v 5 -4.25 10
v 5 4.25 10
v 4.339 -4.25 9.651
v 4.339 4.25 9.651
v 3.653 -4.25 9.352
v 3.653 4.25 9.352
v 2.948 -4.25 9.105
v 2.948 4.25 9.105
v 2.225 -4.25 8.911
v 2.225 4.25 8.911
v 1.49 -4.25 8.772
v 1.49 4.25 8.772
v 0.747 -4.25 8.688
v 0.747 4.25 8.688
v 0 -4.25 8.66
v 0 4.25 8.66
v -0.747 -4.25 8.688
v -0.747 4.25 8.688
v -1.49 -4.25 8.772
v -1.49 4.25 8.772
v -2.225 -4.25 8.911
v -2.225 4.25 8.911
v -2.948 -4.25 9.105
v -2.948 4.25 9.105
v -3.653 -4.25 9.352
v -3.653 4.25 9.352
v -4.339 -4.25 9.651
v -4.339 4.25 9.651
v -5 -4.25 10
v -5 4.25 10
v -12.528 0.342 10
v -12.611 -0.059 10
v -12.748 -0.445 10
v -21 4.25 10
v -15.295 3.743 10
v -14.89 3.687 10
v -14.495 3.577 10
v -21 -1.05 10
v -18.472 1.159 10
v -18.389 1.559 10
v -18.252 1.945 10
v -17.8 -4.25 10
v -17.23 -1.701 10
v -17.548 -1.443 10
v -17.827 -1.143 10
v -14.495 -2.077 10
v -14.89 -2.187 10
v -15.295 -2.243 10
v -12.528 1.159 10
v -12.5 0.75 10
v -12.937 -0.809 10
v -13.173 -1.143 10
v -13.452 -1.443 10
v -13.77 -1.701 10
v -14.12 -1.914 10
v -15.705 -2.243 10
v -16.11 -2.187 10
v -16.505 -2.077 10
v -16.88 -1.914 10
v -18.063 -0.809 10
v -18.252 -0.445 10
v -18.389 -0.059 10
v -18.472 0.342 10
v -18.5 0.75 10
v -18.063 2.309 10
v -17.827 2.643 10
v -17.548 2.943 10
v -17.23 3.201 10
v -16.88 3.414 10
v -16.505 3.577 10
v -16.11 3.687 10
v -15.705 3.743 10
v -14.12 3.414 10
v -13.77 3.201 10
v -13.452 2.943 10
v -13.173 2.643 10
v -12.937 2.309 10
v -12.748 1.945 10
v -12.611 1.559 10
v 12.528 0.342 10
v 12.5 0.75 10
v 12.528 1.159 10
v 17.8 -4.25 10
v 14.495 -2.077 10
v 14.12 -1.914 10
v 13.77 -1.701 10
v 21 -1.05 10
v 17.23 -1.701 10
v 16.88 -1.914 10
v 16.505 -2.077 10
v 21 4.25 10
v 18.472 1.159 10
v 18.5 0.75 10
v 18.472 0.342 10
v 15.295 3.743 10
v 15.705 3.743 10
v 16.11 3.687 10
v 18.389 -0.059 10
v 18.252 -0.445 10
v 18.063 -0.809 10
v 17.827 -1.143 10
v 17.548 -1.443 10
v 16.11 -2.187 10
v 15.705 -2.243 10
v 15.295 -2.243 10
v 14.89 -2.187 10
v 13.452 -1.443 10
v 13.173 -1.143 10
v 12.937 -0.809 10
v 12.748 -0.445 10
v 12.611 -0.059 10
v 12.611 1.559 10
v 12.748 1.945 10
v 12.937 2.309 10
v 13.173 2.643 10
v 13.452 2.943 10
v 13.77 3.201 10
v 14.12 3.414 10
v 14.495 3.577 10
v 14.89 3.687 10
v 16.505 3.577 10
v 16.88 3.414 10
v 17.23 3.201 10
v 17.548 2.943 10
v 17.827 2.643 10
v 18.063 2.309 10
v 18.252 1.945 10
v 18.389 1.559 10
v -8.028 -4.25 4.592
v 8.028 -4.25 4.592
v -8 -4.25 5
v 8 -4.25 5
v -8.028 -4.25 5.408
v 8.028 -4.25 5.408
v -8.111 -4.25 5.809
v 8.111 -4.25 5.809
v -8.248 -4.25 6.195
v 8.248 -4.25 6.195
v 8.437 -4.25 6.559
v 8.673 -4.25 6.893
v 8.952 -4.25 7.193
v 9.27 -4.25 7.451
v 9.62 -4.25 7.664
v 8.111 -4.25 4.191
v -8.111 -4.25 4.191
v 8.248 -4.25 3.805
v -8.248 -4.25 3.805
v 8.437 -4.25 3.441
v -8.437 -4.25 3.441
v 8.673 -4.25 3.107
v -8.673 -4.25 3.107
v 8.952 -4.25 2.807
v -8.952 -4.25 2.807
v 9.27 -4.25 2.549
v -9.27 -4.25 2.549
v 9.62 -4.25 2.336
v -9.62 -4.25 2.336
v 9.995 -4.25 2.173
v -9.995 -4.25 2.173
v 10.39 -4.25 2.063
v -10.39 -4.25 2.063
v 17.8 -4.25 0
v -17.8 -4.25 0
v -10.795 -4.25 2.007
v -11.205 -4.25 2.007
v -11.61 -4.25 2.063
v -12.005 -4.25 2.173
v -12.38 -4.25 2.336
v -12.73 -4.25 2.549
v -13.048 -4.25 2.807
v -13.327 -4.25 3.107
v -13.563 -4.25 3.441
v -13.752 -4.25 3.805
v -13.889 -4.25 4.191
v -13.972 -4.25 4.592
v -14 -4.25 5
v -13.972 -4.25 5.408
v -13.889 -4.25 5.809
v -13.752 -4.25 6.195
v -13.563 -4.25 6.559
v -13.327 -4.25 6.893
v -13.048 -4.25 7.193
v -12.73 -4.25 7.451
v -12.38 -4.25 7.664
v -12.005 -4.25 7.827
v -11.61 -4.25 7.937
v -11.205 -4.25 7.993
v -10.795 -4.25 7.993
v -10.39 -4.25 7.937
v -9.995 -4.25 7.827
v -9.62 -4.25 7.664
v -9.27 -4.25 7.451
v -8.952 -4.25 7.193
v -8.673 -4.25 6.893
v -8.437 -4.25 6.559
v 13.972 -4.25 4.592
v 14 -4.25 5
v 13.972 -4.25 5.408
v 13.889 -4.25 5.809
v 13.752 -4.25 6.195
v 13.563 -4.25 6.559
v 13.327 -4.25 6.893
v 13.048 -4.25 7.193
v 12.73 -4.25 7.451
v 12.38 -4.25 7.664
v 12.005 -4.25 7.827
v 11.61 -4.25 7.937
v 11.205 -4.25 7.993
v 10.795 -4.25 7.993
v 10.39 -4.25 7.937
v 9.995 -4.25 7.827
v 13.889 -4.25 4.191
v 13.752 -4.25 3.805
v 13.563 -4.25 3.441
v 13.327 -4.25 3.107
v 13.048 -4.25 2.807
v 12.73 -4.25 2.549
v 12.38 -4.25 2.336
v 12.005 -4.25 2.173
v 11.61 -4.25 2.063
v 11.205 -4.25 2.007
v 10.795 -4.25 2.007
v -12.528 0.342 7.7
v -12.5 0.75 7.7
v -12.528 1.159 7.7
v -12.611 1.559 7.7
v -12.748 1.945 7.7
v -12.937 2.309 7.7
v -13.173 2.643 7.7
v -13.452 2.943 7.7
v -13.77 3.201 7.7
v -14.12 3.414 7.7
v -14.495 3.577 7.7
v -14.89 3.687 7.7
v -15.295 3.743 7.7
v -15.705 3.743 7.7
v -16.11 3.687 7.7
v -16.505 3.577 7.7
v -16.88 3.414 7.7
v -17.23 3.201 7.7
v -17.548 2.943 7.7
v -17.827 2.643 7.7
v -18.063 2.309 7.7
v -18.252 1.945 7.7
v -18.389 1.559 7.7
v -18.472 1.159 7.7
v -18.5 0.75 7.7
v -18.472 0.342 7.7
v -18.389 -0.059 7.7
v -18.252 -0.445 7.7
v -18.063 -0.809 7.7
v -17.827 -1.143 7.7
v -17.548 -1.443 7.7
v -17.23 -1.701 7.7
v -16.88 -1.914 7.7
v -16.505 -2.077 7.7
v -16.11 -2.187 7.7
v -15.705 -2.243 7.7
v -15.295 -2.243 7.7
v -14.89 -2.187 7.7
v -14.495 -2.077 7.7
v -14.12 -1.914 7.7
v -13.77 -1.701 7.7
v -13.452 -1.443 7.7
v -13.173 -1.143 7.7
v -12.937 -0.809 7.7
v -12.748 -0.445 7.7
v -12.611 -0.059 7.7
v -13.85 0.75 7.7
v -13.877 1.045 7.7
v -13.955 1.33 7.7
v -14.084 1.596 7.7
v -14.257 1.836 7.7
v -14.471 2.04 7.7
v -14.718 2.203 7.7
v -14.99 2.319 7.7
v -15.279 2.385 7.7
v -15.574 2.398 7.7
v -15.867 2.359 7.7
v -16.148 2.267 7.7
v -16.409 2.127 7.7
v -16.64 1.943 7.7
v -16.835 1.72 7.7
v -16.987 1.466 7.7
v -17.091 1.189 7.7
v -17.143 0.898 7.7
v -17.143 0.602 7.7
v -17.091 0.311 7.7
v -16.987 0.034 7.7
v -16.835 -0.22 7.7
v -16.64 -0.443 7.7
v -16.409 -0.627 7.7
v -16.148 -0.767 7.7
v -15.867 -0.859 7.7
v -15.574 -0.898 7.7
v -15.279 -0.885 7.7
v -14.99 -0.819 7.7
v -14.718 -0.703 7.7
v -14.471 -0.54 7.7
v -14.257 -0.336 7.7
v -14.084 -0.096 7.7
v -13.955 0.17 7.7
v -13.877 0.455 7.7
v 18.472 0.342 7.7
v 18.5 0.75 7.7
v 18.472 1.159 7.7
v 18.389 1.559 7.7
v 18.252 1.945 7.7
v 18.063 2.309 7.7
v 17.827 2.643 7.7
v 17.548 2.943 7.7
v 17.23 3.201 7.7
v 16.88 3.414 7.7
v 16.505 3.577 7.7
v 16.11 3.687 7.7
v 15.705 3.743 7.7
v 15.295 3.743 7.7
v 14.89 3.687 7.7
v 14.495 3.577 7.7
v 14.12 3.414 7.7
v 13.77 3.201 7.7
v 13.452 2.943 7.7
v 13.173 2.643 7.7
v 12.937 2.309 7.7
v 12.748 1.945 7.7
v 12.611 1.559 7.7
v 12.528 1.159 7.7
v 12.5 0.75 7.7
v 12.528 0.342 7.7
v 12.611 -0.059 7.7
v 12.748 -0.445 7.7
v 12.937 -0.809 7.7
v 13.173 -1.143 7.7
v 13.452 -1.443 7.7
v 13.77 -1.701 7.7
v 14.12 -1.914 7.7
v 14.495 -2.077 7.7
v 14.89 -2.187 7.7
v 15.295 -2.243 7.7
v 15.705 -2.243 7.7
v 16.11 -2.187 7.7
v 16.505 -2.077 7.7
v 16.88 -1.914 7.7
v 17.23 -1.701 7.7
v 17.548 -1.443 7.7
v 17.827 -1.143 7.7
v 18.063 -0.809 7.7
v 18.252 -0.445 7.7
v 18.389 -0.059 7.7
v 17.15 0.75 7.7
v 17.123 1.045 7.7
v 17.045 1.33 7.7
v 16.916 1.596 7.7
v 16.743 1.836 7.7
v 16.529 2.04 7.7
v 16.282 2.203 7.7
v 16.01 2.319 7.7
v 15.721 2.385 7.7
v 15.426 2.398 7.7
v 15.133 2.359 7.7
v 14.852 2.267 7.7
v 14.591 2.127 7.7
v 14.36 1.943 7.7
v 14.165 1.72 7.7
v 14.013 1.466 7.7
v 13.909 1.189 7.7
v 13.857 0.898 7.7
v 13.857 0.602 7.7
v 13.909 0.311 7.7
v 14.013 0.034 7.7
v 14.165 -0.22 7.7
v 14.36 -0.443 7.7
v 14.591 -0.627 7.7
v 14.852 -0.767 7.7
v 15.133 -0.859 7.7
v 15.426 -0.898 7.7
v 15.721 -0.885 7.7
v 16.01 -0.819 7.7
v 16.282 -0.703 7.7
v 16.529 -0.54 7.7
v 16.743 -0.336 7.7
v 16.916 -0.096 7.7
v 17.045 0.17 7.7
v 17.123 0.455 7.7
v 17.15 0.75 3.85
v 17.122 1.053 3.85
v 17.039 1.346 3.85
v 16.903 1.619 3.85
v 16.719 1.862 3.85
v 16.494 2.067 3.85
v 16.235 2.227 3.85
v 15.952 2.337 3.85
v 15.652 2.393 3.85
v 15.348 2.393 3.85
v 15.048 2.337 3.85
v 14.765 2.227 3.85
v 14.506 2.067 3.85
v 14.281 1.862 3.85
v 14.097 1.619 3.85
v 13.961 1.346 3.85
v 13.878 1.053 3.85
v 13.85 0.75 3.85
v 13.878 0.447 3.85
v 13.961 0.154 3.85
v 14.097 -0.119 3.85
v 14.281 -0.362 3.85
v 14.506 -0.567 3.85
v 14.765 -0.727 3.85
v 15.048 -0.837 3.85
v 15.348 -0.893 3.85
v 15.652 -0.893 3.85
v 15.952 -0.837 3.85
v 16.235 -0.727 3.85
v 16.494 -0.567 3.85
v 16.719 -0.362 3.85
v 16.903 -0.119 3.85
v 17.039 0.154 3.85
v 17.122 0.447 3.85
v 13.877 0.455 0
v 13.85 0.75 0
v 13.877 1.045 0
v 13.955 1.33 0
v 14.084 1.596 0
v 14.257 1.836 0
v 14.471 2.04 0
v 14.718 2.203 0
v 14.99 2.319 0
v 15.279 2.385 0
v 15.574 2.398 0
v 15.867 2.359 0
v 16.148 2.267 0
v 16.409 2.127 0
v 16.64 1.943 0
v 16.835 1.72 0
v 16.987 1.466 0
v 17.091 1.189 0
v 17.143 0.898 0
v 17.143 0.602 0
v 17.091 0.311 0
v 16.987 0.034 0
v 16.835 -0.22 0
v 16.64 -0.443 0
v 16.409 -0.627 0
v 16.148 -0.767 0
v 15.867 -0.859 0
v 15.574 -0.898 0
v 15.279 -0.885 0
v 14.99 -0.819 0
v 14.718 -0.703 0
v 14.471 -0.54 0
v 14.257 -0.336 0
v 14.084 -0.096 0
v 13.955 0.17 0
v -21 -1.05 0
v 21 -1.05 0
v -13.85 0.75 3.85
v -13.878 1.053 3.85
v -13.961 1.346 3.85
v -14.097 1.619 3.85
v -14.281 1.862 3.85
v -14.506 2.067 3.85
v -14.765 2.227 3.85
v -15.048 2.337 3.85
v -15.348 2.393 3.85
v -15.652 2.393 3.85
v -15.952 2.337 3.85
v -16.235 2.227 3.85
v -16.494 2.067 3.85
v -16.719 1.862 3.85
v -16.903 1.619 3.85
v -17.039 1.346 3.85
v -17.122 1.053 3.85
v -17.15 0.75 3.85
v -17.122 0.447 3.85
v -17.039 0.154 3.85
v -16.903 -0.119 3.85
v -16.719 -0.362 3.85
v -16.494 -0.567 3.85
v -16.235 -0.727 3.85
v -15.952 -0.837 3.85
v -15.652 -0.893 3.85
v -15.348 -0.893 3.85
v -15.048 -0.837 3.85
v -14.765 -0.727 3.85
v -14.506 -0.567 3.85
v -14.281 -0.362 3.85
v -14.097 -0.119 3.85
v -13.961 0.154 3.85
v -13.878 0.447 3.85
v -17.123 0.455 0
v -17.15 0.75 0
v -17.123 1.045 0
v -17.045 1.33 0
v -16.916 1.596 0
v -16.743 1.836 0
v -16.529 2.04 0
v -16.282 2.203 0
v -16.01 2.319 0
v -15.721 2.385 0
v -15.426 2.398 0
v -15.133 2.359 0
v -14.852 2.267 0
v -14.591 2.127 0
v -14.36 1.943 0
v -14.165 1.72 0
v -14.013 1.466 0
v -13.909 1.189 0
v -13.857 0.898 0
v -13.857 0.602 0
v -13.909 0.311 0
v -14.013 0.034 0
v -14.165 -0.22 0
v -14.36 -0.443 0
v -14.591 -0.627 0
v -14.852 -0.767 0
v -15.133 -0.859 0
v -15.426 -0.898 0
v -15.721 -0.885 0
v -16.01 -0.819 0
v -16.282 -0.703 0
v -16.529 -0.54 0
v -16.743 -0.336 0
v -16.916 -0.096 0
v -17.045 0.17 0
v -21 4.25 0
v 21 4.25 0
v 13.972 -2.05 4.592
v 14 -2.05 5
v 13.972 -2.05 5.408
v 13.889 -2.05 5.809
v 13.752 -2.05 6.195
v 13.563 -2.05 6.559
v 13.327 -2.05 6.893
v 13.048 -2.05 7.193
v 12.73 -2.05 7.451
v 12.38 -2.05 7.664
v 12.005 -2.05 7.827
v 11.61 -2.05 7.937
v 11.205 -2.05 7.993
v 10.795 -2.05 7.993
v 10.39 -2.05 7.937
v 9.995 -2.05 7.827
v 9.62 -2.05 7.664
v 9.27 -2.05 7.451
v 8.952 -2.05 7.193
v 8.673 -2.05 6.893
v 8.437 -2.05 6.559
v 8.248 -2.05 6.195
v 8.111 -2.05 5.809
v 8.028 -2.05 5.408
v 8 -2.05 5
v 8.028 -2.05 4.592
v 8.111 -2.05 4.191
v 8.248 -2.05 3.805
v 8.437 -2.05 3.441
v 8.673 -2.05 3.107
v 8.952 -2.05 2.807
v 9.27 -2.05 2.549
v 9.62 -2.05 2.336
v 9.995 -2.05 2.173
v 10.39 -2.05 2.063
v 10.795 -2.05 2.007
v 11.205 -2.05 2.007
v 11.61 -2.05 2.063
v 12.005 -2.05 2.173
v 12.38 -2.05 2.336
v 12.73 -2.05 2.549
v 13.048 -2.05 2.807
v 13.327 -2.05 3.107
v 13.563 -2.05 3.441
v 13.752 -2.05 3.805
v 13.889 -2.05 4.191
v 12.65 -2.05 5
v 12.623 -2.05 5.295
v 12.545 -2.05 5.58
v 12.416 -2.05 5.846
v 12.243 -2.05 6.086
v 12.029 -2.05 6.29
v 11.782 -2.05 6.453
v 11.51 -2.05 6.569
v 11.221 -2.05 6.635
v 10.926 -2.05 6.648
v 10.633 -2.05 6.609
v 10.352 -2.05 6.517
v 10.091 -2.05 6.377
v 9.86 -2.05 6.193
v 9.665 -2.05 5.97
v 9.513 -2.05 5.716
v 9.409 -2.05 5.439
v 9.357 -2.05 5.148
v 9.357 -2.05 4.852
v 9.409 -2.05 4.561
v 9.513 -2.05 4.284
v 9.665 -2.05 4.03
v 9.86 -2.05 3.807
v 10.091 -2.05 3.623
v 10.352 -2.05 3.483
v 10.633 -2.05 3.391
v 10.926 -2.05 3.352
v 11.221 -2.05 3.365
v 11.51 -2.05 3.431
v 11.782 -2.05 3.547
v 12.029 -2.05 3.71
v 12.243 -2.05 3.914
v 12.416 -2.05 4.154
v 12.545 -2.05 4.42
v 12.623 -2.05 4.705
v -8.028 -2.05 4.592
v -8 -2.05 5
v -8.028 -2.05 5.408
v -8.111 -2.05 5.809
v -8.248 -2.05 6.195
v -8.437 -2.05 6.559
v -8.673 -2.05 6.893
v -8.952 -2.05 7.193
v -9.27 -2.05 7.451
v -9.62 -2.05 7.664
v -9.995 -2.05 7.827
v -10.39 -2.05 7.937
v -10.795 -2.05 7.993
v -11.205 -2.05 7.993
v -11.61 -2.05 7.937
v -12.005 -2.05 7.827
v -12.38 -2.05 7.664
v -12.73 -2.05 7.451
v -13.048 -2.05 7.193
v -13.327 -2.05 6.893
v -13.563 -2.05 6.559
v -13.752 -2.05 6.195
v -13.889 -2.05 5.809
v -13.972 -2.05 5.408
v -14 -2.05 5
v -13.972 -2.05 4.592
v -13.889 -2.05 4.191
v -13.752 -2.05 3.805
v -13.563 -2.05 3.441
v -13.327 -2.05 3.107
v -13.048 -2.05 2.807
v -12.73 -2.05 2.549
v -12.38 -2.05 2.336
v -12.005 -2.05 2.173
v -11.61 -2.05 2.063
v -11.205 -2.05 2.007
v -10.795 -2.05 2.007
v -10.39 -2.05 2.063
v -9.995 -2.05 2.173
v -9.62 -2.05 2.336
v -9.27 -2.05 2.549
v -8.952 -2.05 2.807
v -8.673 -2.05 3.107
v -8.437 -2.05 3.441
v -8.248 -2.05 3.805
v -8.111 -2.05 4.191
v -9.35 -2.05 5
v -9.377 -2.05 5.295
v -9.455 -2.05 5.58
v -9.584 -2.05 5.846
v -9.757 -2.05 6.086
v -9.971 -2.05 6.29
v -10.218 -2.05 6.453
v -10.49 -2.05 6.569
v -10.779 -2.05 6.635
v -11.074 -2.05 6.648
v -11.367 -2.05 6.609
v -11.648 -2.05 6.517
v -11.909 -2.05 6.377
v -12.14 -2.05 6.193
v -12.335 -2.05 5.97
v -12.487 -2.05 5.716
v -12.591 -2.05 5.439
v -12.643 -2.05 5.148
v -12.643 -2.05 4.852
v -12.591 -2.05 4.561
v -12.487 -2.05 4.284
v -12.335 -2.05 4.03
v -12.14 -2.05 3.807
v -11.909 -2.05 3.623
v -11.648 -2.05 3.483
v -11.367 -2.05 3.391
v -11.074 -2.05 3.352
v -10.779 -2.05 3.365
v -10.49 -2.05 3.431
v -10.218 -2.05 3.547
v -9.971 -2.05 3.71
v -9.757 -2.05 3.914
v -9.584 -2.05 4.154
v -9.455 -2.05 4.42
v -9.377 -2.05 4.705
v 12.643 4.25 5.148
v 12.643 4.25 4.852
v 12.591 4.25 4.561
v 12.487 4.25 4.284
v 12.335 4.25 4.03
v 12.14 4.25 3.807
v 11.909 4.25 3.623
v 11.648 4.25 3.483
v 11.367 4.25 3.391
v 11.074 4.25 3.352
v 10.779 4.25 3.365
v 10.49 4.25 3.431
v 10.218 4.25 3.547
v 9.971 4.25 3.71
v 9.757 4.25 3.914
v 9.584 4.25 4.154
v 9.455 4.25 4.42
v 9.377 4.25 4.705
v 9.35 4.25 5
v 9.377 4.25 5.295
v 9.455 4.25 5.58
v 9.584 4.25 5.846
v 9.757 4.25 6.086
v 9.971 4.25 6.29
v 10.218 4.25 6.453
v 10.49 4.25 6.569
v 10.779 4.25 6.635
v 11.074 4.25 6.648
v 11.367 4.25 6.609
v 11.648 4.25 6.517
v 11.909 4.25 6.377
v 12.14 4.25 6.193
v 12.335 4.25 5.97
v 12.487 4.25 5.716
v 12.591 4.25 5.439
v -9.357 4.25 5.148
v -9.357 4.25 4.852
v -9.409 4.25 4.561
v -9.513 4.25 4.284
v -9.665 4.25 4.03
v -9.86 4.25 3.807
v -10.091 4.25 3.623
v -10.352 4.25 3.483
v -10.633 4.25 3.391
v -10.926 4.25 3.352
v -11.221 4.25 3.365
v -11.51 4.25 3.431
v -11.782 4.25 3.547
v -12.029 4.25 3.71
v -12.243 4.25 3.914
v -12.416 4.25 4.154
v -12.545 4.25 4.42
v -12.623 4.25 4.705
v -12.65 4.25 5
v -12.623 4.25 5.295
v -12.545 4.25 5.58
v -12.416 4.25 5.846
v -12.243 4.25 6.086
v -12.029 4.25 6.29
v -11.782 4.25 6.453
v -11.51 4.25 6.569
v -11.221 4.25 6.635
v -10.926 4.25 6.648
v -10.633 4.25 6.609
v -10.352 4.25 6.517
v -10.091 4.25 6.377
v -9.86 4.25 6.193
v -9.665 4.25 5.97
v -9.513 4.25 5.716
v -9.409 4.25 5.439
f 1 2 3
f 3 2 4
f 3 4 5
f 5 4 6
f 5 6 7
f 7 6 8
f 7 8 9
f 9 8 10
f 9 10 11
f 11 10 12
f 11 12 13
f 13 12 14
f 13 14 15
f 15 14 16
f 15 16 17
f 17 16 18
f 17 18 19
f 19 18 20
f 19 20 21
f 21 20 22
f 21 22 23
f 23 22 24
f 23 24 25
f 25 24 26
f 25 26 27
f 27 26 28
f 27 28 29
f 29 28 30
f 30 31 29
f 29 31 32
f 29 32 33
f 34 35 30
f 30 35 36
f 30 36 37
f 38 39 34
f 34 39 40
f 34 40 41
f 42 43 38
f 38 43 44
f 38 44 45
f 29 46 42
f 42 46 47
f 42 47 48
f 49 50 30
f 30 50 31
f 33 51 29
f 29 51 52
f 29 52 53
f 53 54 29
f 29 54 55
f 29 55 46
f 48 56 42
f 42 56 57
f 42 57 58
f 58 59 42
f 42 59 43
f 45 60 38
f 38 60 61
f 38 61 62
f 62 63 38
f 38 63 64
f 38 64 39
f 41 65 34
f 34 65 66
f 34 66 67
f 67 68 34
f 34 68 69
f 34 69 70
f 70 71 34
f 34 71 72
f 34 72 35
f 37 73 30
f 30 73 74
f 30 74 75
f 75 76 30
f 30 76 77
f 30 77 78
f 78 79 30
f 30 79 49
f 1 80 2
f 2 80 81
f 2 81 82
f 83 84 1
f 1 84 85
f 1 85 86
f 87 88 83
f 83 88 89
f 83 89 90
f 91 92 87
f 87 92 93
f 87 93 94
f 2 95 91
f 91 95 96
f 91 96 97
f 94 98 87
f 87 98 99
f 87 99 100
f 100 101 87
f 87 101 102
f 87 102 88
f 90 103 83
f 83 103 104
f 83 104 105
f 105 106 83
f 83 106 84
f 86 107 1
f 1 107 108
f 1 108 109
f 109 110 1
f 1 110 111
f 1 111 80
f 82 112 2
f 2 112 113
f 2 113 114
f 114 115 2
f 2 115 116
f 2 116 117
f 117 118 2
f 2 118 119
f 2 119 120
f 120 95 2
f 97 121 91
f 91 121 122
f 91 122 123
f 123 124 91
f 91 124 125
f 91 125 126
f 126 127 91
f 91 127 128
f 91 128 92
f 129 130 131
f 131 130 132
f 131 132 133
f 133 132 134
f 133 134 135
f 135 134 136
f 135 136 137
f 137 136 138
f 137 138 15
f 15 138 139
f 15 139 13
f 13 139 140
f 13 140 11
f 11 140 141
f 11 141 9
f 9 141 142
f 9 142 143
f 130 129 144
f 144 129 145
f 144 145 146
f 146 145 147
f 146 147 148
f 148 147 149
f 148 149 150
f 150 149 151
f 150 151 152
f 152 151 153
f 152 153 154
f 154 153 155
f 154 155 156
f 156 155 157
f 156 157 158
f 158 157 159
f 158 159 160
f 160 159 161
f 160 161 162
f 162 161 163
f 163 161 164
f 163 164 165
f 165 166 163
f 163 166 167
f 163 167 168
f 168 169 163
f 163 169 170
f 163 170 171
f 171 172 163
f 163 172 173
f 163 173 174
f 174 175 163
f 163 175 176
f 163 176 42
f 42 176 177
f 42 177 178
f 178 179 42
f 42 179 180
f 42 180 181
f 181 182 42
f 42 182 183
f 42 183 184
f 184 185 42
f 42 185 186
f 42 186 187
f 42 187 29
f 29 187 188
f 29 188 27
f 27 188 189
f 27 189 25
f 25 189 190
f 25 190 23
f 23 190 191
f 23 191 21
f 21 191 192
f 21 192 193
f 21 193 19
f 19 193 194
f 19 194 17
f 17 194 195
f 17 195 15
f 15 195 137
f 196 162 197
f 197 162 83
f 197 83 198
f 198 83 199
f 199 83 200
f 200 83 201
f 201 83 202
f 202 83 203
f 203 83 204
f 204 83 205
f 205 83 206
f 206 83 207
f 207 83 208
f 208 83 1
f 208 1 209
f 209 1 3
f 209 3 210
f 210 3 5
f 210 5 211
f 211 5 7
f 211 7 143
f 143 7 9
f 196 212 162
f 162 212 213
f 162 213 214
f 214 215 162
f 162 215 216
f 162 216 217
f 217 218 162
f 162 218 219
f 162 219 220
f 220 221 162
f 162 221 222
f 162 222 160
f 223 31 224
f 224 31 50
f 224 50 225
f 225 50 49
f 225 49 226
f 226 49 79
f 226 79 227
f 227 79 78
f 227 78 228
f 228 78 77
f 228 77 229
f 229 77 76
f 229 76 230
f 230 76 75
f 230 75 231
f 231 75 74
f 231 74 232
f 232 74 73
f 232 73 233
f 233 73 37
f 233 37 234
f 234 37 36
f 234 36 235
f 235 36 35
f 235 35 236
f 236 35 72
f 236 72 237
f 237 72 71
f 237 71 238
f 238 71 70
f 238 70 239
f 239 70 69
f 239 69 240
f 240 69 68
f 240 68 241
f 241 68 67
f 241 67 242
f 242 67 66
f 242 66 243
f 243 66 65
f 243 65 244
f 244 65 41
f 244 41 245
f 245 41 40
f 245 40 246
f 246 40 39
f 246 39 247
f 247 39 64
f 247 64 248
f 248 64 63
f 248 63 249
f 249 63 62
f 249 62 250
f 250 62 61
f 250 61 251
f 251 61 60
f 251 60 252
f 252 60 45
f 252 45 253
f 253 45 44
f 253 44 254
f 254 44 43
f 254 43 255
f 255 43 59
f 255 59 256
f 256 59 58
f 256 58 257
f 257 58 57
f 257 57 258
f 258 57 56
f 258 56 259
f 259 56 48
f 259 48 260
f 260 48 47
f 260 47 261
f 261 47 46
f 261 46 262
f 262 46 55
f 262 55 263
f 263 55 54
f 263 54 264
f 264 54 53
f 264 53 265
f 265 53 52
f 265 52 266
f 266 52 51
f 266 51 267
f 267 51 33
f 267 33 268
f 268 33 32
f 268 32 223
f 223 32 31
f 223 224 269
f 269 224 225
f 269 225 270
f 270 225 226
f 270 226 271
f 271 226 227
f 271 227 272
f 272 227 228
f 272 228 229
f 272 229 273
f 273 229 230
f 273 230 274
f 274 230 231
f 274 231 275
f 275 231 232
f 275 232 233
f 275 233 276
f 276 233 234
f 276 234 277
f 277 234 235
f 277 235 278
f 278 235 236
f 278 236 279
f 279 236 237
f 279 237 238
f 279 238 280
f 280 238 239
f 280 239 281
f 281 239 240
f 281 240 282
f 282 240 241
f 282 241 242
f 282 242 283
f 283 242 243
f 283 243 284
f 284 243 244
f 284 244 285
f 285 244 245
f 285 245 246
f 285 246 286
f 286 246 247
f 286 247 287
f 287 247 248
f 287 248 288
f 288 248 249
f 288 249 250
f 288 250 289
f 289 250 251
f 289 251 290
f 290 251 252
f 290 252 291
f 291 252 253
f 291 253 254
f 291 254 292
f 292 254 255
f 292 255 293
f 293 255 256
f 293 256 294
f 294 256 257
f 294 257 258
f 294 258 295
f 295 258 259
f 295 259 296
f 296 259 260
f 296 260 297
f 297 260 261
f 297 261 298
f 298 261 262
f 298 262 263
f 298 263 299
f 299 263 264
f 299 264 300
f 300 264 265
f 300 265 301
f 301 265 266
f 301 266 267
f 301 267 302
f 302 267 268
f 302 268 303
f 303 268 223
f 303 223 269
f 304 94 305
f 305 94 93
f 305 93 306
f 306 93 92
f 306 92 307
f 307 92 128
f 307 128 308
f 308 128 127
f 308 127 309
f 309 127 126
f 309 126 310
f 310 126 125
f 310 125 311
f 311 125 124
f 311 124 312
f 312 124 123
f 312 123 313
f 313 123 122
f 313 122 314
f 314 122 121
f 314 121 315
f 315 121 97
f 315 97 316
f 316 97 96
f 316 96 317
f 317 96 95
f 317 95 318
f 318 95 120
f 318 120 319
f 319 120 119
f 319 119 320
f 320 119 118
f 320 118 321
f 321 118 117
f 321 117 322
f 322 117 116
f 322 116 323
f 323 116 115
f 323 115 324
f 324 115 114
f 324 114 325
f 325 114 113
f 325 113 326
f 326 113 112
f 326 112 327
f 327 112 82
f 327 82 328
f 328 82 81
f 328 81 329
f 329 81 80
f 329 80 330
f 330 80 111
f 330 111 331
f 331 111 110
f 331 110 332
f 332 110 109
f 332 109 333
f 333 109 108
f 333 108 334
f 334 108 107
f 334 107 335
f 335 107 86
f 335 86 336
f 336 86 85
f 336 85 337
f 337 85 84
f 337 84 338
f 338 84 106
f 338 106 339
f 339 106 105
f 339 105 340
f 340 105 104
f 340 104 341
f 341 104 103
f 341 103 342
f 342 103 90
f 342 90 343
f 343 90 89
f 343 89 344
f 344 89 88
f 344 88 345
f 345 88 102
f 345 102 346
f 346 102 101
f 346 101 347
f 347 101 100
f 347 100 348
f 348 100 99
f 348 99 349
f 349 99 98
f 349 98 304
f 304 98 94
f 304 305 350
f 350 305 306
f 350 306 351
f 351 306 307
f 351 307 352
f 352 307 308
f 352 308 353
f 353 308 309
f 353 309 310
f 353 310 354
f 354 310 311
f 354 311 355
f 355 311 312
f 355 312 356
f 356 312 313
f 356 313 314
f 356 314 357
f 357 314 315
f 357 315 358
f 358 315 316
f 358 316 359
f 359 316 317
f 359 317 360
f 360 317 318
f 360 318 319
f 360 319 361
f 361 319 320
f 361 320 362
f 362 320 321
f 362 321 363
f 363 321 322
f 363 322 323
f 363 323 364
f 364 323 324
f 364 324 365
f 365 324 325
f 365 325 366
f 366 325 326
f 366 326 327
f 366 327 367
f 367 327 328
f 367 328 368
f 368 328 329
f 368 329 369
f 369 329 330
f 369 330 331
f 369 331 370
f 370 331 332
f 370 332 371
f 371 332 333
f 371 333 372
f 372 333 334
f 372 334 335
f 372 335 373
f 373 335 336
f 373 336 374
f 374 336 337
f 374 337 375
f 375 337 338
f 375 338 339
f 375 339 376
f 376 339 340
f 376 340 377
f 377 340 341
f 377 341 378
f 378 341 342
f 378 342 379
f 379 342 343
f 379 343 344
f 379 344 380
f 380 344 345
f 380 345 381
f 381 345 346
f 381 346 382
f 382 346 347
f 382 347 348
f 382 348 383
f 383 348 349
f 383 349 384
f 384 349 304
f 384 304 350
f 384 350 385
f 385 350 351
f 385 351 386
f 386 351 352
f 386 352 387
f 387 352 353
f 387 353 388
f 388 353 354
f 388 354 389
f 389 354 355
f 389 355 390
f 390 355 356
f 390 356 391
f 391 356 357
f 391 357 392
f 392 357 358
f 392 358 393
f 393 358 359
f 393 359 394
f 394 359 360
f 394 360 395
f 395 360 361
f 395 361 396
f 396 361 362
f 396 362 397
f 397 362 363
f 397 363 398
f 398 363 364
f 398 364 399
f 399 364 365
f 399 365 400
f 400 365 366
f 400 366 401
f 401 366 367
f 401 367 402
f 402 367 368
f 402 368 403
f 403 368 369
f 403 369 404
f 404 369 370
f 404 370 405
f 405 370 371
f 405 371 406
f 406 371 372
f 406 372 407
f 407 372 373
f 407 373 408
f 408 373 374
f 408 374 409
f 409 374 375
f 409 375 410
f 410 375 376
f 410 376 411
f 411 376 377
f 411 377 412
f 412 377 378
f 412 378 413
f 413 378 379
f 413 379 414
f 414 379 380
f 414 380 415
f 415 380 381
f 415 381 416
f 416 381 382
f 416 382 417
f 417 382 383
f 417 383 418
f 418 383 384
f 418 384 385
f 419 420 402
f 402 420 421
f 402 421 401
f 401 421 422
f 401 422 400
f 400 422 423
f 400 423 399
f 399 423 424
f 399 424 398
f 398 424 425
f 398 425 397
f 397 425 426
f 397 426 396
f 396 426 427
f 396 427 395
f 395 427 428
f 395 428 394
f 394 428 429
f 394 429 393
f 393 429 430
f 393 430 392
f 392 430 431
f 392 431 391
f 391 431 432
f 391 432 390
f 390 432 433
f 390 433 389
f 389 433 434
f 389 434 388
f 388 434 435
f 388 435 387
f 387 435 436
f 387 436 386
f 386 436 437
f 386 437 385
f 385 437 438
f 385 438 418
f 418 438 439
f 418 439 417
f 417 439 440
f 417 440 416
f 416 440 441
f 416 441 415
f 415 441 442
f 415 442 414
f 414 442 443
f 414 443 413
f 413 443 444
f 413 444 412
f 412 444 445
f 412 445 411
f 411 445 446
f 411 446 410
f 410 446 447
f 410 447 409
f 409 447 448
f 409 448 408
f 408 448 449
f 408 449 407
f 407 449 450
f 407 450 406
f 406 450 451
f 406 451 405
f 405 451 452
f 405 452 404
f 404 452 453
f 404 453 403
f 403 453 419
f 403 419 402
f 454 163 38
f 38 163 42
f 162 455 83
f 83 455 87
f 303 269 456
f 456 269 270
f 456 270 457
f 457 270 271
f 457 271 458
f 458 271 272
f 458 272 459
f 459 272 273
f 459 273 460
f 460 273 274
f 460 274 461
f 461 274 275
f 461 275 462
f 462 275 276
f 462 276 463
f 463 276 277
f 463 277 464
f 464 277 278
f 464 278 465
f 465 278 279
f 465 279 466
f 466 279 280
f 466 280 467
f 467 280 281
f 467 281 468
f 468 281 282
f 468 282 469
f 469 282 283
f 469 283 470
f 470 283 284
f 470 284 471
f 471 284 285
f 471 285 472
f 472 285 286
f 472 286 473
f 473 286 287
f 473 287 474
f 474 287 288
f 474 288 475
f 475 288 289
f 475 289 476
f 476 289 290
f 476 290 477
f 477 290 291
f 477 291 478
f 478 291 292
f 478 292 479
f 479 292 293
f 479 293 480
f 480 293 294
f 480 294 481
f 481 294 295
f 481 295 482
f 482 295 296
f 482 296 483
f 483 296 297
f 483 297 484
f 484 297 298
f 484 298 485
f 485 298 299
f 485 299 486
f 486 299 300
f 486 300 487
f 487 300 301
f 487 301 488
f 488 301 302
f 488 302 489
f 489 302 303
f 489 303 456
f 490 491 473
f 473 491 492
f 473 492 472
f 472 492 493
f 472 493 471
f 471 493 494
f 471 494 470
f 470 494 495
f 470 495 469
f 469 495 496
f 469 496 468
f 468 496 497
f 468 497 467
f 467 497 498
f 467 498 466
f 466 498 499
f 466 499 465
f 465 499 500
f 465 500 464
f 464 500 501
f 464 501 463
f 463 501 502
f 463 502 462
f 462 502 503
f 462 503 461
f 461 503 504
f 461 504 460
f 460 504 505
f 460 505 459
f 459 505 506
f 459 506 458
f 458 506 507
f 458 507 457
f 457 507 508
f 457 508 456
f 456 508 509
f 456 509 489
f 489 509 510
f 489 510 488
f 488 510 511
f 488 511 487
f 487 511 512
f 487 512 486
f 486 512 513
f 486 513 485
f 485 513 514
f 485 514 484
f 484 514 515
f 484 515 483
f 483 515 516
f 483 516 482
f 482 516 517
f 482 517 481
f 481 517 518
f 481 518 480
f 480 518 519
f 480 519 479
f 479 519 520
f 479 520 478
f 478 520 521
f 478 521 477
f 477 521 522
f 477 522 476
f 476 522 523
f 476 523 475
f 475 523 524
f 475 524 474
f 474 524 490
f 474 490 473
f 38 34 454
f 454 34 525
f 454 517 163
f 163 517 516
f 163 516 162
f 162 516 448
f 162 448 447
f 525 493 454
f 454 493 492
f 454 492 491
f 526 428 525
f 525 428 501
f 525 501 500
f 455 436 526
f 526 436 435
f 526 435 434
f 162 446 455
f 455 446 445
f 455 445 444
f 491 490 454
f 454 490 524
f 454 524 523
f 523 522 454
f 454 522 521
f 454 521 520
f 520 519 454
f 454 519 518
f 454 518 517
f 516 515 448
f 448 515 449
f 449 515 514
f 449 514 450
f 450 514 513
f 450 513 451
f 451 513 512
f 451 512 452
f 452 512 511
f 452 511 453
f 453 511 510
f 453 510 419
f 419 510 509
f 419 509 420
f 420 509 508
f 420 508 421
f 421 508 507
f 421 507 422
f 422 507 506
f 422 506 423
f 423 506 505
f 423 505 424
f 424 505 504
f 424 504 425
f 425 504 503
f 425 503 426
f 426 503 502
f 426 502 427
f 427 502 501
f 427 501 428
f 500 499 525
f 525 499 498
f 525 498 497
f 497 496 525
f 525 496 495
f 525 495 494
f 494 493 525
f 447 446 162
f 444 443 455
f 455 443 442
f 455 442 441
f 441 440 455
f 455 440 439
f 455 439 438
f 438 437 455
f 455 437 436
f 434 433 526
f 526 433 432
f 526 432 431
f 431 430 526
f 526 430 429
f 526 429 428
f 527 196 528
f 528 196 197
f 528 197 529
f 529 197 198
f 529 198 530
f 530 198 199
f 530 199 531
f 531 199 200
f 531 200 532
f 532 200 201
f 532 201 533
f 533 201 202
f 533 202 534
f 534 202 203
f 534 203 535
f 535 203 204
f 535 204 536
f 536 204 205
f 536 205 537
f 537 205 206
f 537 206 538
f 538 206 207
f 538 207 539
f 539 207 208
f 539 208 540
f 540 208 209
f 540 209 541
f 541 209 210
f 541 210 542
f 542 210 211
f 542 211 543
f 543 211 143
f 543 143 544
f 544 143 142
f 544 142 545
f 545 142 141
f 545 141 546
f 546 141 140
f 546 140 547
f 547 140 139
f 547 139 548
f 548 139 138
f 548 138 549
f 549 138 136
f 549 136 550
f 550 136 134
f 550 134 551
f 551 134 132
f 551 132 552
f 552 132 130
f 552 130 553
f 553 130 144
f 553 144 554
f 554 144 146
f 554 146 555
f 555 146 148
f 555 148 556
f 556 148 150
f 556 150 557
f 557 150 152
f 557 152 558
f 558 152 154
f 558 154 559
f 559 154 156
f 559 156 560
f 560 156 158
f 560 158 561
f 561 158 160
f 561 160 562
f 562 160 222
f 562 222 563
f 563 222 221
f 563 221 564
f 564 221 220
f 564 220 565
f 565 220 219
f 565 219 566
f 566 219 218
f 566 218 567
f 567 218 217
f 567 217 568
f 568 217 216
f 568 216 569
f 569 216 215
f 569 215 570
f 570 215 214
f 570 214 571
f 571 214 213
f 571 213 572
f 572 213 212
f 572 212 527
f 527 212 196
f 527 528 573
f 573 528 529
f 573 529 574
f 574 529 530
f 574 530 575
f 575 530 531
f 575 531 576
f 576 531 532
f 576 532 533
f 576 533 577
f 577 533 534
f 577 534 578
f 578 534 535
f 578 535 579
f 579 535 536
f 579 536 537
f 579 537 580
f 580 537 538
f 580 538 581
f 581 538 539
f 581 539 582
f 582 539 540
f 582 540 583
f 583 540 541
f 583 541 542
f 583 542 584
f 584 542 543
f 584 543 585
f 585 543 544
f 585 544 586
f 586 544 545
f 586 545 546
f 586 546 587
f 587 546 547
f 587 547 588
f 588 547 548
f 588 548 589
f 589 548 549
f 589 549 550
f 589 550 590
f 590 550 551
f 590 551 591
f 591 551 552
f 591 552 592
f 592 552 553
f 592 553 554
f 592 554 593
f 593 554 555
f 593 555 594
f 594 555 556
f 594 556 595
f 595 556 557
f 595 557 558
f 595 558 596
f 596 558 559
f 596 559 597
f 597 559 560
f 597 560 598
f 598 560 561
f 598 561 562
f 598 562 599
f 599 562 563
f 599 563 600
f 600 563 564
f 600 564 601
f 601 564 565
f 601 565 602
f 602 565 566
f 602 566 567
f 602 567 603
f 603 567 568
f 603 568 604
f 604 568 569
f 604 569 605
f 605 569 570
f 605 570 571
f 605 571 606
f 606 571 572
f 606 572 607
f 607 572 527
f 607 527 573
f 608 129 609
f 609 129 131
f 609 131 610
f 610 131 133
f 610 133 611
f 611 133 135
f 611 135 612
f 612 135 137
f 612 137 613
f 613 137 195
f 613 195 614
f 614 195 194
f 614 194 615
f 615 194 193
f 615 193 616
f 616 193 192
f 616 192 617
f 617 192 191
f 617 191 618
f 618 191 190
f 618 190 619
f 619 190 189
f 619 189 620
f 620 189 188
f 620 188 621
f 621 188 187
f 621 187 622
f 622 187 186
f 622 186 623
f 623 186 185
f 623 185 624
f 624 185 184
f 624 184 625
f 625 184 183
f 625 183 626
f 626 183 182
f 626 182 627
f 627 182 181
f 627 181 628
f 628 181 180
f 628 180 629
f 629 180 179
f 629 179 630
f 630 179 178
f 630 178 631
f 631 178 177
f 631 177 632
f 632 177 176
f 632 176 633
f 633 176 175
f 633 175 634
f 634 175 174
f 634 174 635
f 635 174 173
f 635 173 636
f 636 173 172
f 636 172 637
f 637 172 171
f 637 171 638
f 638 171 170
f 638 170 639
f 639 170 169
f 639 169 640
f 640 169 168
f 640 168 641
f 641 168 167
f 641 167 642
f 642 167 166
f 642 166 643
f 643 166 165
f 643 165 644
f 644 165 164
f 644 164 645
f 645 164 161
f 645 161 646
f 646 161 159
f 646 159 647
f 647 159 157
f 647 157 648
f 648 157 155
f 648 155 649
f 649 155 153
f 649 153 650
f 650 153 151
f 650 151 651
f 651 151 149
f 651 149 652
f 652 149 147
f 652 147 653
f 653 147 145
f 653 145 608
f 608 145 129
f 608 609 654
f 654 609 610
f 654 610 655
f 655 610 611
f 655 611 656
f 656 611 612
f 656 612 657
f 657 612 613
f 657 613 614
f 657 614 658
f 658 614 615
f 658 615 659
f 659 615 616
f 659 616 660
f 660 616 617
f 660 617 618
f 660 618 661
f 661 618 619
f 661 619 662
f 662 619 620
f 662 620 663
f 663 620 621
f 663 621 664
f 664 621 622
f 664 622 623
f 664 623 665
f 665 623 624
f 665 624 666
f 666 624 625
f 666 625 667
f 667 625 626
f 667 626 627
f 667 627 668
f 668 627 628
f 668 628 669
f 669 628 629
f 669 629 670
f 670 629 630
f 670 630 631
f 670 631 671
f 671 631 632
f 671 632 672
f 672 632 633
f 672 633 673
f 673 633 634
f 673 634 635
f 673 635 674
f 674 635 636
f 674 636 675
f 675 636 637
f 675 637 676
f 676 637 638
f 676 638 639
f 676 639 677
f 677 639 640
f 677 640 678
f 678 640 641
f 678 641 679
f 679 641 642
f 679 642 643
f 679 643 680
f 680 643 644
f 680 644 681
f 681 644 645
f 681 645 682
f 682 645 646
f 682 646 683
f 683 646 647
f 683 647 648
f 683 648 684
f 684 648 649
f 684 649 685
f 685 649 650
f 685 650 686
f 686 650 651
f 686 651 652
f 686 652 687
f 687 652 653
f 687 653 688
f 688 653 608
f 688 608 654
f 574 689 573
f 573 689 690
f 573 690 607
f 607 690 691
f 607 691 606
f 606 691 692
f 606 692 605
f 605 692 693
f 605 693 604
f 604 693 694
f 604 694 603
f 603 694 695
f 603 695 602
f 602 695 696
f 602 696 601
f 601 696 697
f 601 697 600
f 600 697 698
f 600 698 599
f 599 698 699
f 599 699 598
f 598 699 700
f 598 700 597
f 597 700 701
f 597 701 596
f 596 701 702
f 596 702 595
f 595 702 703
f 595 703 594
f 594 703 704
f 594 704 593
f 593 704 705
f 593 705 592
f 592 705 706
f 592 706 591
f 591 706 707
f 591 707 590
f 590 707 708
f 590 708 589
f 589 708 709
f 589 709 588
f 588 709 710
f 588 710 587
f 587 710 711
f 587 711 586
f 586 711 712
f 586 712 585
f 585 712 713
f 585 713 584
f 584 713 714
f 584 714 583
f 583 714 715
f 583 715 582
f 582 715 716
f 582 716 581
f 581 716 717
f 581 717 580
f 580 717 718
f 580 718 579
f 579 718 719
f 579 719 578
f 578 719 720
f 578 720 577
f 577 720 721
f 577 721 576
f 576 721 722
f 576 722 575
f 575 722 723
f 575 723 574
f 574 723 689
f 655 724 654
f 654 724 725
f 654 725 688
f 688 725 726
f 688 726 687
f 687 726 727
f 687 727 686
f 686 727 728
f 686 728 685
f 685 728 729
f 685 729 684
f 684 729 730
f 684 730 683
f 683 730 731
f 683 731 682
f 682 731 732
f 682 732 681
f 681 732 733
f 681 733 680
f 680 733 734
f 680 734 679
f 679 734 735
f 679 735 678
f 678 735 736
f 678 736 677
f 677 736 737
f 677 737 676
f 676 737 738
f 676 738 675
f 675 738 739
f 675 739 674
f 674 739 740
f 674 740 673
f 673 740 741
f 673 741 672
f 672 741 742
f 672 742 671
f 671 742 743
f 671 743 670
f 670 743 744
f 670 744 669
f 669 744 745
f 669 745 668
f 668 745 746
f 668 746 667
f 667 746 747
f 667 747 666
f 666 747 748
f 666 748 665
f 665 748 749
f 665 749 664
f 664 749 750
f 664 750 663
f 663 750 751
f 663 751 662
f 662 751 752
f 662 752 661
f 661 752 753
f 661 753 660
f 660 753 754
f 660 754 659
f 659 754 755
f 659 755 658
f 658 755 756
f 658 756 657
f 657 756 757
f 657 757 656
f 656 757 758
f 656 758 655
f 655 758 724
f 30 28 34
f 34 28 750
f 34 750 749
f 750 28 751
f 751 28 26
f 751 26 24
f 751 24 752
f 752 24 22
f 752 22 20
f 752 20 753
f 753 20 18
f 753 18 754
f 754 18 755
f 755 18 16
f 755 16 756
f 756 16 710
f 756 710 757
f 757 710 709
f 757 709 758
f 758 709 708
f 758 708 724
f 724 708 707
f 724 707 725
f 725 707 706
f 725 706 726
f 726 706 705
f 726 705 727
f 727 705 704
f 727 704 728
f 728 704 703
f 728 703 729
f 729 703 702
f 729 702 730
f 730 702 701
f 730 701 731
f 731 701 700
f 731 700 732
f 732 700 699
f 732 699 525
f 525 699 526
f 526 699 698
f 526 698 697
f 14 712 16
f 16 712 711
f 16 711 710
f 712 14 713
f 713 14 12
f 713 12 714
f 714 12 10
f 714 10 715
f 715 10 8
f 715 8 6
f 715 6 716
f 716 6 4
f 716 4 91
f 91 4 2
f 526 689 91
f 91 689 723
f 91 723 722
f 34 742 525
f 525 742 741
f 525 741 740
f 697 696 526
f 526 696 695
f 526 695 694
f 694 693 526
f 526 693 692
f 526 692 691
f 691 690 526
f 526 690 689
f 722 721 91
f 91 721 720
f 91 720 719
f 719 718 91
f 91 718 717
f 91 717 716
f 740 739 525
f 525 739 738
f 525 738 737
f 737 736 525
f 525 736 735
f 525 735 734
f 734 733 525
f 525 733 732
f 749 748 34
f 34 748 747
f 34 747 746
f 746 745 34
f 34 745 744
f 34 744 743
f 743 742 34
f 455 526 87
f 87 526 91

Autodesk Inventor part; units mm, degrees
ref_plane "YZ Plane" through (0, 0, 0) normal (1, 0, 0) x (0, 1, 0)
ref_plane "XZ Plane" through (0, 0, 0) normal (0, 1, 0) x (-1, 0, 0)
ref_plane "XY Plane" through (0, 0, 0) normal (0, 0, 1) x (1, 0, 0)
sketch "草圖1" plane through (0, 0, 0) normal (0, 0, 1) x (1, 0, 0)
  line L0 (-29.4, 0) -> (29.4, 0) projected
  line L1 (0, -5.95) -> (0, 5.95) projected
  line L2 (-21, 4.25) -> (21, 4.25)
  line L3 (21, 4.25) -> (21, -4.25)
  line L4 (21, -4.25) -> (-21, -4.25)
  line L5 (-21, -4.25) -> (-21, 4.25)
  point P0 (0, 0)
  dimension "d0" = 8.5
  dimension "d1" = 42
extrude "擠出1" add sketch "草圖1" along normal blind 10
sketch "草圖2" plane through (-21, -4.25, 0) normal (0, -1, 0) x (1, 0, 0)
  line L0 (0, 0) -> (42, 0) projected
  line L1 (42, 0) -> (42, 10) projected
  line L2 (0, 10) -> (42, 10) projected
  line L3 (0, 0) -> (0, 10) projected
  circle A0 centre (10, 5) radius 4
  circle A1 centre (10, 5) radius 3
  circle A2 centre (10, 5) radius 1.65
  line L4 (21, 0) -> (21, -1.5889)
  circle A3 centre (32, 5) radius 4
  circle A4 centre (32, 5) radius 3
  circle A5 centre (32, 5) radius 1.65
  dimension "d4" = 6
  dimension "d5" = 3.3
  dimension "d6" = 10
  dimension "d29" = 5
extrude "擠出2" cut sketch "草圖2" against normal blind 10 contours A2 | A5
extrude "擠出3" cut sketch "草圖2" against normal blind 2.2 contours A1 | A4
sketch "草圖3" plane through (0, 0, 10) normal (0, 0, 1) x (1, 0, 0)
  line L0 (-21, -4.25) -> (21, -4.25) projected
  line L1 (21, -4.25) -> (21, 4.25) projected
  line L2 (21, 4.25) -> (-21, 4.25) projected
  line L3 (-21, 4.25) -> (-21, -4.25) projected
  line L4 (-17.8, -4.25) -> (-21, -1.05)
  line L5 (0, 4.25) -> (0, 6.2817)
  line L6 (17.8, -4.25) -> (21, -1.05)
  line L7 (17.8, -4.25) -> (22.3255, -4.25) construction
  circle A0 centre (-15.5, 0.75) radius 1.65
  circle A1 centre (-15.5, 0.75) radius 3
  circle A2 centre (15.5, 0.75) radius 1.65
  circle A3 centre (15.5, 0.75) radius 3
  point P0 (0, 0)
  dimension "d11" = 3.2
  dimension "d12" = 45
  dimension "d13" = 45
  dimension "d14" = 3.2
  dimension "d15" = 3.3
  dimension "d16" = 6
  dimension "d17" = 5.5
  dimension "d24" = 3.5
extrude "擠出4" cut sketch "草圖3" against normal up to surface (10 mm away) contours L3 L4 L0 | L6 L1 L0 | A0 | A2
extrude "擠出6" cut sketch "草圖3" against normal blind 2.3 contours A1 | A3
sketch "草圖4" plane through (-17.8, -4.25, 0) normal (0, -1, 0) x (1, 0, 0)
  line L0 (0, 10) -> (0, 0) projected
  line L1 (0, 0) -> (35.6, 0) projected
  line L2 (35.6, 0) -> (35.6, 10) projected
  line L3 (0, 10) -> (35.6, 10) projected
  circle A0 centre (28.8, 5) radius 3 projected
  circle A1 centre (6.8, 5) radius 3 projected
  arc A2 (12.8, 10) -> (22.8, 10) centre (17.8, 18.6603) ccw
  line L4 (17.8, 10) -> (17.8, 8.9301)
  point P0 (17.8, 0)
  dimension "d25" = 10
  dimension "d26" = 10
extrude "擠出7" cut sketch "草圖4" against normal up to surface (8.5 mm away) contours L3 A2
equation "\"d27\" = d25"
properties part number "y_motor_lock_bottom1_3D 列印"
